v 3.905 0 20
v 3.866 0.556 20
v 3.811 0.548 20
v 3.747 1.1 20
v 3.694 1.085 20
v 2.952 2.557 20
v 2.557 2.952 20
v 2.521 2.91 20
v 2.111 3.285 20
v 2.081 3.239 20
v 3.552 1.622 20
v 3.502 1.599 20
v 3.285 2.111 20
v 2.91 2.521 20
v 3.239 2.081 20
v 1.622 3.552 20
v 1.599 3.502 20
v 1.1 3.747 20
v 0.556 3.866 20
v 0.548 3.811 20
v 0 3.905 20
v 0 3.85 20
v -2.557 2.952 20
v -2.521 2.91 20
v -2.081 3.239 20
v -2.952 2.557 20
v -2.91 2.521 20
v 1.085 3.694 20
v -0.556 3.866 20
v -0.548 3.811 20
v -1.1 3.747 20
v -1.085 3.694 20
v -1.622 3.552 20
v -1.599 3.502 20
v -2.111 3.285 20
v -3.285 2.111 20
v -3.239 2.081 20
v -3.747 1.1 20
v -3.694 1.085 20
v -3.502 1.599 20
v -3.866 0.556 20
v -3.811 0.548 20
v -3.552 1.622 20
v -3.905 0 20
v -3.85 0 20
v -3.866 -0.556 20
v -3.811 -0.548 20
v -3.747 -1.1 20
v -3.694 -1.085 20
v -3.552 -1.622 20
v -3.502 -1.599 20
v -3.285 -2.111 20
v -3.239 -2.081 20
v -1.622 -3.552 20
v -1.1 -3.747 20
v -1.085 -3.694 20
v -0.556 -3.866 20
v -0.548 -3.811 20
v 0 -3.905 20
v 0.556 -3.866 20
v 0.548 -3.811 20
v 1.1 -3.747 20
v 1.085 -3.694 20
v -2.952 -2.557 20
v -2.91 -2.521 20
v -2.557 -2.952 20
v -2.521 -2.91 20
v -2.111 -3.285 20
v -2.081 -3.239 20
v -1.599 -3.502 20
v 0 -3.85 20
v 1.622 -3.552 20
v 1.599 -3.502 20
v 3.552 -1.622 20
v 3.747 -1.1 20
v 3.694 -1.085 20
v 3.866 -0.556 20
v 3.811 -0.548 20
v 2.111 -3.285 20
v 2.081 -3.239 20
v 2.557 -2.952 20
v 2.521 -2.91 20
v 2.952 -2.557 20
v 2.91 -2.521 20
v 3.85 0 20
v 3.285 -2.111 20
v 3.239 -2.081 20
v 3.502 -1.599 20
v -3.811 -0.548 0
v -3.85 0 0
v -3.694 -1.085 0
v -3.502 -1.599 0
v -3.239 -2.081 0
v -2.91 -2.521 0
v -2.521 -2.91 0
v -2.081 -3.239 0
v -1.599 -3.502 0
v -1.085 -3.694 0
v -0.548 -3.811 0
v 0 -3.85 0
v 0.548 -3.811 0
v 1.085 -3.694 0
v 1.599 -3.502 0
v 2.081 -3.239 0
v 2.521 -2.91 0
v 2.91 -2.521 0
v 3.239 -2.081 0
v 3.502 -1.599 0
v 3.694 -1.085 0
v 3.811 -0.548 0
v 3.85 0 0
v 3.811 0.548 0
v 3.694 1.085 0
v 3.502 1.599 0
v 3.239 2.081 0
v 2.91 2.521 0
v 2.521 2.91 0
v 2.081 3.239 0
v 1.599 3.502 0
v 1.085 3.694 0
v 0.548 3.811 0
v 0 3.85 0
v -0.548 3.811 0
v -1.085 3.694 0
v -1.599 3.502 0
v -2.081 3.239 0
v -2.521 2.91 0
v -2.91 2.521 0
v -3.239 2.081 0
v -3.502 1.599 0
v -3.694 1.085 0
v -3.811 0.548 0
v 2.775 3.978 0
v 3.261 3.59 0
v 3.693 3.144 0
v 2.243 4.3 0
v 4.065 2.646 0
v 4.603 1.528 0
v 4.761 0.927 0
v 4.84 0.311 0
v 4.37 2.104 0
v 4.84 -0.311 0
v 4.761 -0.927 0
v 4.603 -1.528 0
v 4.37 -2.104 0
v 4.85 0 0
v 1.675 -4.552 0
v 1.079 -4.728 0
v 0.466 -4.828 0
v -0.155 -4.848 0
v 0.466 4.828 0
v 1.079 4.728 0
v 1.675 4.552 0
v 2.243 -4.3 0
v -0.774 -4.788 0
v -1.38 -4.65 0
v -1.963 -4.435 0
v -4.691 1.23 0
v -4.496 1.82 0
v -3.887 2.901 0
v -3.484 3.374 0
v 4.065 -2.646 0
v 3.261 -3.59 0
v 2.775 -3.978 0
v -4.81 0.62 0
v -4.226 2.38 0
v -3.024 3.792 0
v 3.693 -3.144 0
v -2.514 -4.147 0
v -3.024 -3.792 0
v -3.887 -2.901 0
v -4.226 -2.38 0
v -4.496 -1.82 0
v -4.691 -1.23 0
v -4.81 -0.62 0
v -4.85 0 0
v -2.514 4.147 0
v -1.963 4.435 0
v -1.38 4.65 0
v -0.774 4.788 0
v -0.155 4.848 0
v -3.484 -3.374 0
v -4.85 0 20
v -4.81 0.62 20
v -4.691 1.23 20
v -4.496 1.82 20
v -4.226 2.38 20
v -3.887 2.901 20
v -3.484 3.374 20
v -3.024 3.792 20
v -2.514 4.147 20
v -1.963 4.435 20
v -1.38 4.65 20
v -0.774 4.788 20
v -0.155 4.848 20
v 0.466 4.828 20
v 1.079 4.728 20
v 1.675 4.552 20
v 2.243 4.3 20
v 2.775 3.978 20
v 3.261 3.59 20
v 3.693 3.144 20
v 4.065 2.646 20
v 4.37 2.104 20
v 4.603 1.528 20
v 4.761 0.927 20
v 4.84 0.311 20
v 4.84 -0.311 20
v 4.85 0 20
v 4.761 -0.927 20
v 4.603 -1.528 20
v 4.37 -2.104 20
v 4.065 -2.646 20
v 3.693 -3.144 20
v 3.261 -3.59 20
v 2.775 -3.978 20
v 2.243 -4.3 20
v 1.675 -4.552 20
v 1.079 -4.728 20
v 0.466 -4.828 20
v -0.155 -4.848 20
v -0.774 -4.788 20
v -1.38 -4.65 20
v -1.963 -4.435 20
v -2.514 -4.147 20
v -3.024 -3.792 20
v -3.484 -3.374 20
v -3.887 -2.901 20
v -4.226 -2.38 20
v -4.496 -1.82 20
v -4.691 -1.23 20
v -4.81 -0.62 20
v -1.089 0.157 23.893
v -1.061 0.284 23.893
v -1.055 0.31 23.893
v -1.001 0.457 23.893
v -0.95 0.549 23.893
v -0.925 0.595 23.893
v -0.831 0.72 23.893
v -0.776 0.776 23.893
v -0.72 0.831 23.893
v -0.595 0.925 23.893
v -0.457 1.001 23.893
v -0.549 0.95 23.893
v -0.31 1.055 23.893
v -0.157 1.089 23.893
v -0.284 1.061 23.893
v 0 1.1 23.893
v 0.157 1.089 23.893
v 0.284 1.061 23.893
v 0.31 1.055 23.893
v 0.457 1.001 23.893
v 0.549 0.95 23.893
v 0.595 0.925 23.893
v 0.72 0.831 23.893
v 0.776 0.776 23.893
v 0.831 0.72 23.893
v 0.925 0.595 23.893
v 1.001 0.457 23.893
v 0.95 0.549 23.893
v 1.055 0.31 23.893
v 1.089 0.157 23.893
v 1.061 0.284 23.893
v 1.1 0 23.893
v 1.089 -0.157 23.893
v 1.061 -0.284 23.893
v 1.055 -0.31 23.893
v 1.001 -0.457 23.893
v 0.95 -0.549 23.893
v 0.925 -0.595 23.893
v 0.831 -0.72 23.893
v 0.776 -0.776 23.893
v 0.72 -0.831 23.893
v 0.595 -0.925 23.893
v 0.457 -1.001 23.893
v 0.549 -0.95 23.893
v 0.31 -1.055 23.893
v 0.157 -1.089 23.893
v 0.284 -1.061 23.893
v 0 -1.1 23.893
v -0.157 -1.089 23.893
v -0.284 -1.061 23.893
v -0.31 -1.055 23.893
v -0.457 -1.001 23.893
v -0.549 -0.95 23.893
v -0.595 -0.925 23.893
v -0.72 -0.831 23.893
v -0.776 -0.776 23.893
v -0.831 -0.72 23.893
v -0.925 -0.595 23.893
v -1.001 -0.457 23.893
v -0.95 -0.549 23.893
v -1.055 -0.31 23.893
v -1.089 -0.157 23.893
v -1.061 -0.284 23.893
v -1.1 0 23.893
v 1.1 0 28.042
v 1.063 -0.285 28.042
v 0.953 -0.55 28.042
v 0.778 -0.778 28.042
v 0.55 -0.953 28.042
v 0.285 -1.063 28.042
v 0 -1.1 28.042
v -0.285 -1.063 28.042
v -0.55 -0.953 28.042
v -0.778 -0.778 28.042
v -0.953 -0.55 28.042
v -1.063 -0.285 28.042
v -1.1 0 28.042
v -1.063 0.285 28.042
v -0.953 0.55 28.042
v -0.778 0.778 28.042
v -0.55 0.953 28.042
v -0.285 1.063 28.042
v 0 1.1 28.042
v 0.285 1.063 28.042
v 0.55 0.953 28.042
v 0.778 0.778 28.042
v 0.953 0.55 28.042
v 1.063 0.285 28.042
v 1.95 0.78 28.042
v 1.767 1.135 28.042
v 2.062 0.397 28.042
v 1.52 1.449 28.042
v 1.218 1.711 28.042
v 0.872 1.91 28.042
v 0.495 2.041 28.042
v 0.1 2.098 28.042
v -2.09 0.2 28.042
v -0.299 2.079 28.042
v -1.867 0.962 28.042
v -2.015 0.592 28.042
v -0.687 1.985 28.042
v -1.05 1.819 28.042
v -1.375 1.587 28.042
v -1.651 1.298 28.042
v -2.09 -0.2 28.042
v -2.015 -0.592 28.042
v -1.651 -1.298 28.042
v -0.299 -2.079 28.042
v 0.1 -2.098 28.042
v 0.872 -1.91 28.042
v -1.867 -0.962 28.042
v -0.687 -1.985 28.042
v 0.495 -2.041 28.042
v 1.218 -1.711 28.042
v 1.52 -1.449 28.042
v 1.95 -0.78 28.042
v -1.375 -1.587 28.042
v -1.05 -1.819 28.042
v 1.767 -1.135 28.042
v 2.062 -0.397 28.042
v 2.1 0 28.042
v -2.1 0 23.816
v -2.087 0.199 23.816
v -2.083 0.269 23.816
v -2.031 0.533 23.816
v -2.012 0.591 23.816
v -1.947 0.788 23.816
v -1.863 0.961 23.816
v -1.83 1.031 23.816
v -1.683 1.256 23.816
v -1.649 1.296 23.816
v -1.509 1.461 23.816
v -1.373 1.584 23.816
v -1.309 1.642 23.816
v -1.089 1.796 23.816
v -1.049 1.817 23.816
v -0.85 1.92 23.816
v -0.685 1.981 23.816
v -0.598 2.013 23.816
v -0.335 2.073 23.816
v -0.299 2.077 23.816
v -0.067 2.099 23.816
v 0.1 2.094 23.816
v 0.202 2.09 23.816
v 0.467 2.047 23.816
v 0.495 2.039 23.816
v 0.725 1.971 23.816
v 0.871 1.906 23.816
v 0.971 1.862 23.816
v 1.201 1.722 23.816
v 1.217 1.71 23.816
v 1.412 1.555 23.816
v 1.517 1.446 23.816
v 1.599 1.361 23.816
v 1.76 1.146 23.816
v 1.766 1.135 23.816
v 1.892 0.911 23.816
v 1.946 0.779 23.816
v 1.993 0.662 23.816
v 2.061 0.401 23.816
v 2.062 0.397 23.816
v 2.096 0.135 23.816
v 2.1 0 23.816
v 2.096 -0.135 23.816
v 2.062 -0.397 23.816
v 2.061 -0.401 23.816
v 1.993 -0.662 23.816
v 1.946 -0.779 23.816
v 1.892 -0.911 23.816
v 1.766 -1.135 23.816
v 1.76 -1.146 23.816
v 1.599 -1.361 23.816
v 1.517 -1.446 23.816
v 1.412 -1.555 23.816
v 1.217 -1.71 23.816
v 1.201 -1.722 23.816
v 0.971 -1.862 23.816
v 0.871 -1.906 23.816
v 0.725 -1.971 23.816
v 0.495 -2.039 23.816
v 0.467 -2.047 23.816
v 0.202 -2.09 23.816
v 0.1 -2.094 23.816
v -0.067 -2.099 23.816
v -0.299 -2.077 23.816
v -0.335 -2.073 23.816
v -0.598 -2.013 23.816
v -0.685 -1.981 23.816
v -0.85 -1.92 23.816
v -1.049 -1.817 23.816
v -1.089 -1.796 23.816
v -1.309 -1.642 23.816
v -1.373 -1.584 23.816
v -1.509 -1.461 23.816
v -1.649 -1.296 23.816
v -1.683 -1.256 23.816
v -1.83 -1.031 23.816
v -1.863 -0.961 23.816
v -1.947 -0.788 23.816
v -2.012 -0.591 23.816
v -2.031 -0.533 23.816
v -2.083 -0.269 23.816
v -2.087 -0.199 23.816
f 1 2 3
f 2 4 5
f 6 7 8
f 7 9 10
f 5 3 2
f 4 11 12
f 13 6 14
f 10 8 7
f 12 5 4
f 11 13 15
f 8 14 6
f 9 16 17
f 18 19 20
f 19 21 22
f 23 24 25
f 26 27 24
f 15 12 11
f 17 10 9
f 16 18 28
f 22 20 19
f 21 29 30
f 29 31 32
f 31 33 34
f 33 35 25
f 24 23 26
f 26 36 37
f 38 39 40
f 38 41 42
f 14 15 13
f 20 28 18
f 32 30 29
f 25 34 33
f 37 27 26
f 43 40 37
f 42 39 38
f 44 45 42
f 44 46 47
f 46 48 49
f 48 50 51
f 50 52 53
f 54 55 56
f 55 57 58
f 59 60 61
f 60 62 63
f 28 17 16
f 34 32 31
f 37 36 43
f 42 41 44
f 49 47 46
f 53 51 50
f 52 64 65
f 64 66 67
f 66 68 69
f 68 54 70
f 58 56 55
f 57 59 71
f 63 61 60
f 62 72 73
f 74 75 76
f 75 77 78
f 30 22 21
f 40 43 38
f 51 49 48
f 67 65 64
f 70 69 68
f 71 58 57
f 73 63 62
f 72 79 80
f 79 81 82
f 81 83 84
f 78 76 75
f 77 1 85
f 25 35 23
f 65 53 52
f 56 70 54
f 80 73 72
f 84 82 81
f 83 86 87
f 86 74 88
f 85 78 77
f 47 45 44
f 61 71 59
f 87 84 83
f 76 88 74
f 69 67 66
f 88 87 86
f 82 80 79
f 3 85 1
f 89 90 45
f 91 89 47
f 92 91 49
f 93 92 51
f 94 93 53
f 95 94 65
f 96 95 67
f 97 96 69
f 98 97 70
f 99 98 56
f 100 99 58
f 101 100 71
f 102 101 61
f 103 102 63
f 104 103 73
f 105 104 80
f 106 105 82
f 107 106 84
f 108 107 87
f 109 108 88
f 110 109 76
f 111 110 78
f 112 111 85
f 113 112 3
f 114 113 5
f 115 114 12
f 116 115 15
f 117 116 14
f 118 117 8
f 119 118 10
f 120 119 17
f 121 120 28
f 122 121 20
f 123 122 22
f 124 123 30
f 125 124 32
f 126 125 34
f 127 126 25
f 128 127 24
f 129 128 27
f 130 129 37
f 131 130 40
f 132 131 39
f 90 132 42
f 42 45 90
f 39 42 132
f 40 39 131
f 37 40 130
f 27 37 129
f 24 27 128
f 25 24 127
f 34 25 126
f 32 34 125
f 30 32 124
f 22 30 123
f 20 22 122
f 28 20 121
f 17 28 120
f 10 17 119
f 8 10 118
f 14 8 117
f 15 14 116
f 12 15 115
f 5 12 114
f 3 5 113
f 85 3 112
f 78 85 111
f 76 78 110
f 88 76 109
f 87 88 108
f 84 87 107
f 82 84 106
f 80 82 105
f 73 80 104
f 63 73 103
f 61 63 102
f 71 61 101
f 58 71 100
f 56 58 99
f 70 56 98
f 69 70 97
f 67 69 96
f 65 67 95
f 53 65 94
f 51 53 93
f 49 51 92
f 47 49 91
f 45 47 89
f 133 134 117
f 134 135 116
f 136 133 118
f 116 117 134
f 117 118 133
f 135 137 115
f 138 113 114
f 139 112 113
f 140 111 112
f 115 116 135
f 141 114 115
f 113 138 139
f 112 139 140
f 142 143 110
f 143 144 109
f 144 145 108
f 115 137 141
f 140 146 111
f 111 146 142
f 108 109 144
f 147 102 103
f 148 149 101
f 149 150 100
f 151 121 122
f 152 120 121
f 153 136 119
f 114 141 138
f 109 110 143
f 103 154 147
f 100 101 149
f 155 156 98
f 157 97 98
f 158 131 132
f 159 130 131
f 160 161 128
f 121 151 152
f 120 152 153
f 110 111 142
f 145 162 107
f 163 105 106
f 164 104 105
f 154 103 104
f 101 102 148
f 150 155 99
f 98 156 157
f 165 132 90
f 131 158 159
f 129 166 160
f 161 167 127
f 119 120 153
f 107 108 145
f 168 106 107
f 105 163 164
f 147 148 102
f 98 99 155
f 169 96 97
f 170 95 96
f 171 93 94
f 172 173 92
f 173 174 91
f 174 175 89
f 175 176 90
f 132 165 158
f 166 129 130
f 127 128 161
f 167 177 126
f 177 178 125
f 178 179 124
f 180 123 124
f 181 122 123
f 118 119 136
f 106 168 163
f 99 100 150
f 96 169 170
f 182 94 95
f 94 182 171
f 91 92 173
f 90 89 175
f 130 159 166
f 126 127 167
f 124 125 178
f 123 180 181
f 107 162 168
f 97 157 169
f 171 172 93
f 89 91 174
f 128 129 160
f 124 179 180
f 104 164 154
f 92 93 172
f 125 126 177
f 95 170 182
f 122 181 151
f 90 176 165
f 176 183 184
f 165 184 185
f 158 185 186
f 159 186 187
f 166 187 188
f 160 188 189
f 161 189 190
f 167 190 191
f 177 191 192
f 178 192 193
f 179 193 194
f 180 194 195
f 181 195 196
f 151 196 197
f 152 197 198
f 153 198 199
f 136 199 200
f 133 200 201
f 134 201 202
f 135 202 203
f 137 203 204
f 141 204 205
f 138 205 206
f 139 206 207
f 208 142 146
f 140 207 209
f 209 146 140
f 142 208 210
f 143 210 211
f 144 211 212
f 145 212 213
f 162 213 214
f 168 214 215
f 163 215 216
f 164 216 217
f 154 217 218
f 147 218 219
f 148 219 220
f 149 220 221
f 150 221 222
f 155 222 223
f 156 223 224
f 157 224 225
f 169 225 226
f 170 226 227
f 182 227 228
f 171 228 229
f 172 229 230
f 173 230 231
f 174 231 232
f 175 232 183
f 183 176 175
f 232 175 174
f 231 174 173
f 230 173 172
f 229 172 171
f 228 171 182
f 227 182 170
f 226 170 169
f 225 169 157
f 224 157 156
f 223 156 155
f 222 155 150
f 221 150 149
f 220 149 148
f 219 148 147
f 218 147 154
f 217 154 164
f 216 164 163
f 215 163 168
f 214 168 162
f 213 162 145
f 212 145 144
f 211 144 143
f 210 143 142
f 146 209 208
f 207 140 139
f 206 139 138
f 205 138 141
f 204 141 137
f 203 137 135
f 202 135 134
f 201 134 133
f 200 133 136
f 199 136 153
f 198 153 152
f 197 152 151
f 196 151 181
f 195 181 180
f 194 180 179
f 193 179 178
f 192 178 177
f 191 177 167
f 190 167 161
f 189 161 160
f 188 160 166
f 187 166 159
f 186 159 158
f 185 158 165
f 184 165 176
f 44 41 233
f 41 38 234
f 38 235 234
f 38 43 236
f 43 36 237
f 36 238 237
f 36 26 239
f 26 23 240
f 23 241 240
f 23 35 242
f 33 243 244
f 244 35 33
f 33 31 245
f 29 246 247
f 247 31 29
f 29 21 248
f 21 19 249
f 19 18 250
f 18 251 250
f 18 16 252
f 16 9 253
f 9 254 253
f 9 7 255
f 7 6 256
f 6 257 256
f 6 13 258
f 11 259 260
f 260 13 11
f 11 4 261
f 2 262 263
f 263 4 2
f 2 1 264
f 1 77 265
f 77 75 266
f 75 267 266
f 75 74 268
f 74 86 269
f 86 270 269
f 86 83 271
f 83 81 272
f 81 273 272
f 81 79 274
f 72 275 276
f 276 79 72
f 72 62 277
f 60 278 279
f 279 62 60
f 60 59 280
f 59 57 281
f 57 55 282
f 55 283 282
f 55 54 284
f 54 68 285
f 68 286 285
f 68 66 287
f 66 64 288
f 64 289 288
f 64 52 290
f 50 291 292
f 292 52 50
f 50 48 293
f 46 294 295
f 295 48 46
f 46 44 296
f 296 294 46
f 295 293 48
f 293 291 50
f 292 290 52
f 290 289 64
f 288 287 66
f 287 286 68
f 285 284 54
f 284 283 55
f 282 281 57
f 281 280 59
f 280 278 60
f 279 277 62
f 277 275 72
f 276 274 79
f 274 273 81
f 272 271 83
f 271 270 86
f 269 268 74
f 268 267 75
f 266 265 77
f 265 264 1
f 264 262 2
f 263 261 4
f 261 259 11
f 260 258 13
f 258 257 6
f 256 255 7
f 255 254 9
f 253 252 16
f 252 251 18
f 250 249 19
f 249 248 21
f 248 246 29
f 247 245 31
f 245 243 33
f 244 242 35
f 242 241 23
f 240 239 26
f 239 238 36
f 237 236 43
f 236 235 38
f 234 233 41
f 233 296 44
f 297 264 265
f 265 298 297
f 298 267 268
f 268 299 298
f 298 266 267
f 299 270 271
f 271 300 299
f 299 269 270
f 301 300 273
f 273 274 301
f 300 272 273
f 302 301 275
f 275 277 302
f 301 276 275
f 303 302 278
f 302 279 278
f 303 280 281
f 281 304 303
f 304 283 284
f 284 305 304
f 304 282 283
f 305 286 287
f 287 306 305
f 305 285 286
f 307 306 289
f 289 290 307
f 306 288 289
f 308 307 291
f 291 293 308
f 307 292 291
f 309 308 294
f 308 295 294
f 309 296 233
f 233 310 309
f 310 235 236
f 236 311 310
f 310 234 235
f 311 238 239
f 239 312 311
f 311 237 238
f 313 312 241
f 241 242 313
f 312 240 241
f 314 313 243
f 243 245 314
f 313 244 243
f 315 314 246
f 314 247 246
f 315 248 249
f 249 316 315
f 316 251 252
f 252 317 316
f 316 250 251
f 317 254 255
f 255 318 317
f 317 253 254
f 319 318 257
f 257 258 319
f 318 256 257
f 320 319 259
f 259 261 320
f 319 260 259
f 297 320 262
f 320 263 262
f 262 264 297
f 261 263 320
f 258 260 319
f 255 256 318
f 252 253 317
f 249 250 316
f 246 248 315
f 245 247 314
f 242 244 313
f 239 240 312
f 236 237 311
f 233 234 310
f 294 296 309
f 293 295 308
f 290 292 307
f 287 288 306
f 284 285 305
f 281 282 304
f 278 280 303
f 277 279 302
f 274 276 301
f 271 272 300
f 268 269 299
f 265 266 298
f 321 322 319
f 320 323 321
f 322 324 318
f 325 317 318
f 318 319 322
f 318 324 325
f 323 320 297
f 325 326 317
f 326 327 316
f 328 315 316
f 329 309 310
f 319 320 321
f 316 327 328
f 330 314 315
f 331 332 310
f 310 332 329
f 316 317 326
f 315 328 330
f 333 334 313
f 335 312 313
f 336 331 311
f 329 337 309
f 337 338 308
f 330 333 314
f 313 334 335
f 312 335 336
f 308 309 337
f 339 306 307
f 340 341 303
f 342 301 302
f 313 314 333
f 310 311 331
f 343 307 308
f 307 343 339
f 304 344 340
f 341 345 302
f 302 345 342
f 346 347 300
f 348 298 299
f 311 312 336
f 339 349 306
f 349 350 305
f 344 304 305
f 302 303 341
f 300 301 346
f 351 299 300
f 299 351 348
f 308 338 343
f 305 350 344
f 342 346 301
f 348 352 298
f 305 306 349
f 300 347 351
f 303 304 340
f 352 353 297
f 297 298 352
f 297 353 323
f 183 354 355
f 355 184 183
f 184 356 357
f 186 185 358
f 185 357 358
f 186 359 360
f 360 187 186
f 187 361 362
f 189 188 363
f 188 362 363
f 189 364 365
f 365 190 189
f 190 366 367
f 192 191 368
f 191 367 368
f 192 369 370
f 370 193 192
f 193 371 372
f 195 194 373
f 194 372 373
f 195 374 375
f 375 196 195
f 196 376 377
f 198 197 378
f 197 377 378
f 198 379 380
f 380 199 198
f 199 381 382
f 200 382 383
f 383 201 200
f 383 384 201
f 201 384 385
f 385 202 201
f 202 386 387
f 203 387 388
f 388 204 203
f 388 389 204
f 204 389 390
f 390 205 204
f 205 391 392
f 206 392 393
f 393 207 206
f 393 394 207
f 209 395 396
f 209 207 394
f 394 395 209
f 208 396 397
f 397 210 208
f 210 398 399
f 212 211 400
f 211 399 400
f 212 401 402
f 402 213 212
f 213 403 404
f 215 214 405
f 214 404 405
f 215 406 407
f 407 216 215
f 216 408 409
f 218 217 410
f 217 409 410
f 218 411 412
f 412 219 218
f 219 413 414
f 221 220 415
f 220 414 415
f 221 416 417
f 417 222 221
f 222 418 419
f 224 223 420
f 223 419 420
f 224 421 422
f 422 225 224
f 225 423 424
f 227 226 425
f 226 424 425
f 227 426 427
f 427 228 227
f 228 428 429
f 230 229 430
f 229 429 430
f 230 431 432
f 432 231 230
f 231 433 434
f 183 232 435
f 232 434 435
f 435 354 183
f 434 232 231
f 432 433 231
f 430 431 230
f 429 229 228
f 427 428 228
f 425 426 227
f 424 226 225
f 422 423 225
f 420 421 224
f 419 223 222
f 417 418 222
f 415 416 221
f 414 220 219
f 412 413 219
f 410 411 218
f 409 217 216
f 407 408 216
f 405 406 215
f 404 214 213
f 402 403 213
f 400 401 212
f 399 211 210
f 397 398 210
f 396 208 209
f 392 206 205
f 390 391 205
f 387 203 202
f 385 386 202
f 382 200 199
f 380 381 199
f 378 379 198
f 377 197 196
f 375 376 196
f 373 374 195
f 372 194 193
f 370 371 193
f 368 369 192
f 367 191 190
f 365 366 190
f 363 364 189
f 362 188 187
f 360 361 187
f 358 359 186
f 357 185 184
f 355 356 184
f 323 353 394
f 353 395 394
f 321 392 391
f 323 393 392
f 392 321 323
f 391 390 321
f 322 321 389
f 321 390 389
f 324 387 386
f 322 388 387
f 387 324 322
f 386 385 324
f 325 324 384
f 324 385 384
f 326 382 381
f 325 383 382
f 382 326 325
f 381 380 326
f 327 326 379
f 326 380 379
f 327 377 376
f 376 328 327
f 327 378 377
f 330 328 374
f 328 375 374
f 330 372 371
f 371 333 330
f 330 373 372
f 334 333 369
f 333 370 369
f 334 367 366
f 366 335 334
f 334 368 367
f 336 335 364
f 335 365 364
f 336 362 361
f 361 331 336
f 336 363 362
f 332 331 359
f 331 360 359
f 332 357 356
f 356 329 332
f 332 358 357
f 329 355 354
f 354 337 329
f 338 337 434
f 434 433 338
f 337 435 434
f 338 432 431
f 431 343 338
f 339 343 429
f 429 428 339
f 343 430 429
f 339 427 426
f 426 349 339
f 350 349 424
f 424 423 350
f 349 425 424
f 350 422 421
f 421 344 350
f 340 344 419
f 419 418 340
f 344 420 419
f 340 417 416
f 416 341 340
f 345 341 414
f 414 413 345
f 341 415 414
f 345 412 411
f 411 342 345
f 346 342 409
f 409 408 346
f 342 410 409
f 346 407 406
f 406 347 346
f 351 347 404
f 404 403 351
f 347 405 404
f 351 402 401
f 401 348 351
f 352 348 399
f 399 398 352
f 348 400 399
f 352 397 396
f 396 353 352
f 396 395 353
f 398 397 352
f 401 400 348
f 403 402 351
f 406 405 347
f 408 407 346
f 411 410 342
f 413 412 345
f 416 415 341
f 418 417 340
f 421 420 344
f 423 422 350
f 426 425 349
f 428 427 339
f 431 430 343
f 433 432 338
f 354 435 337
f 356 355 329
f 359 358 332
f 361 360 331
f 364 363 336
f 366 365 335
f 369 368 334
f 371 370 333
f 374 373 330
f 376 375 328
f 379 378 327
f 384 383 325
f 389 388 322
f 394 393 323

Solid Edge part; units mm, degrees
sketch "Sketch1" plane through (0, 0, 0) normal (0, 0, 1) x (1, 0, 0)
  circle A0 centre (0, 0) radius 3.85
  circle A1 centre (0, 0) radius 4.85
  dimension "D1" = 7.7
extrude "ProtrusiónExtruida_22" add sketch "Sketch1" along normal blind 20
sketch "Sketch2" plane through (0, 0, 0) normal (0, -1, 0) x (1, 0, 0)
  line L0 (1.1, 28.0416) -> (1.1, 23.893)
  line L1 (1.1, 23.893) -> (3.9054, 20)
  line L2 (4.85, 20) -> (3.9054, 20)
  line L3 (4.85, 20) -> (2.1, 23.8161)
  line L4 (2.1, 28.0416) -> (2.1, 23.8161)
  line L5 (1.1, 28.0416) -> (2.1, 28.0416)
  dimension "D1" = 1.1
  dimension "D2" = 1
revolve "RevolvedProtrusion1" add sketch "Sketch2" angle 360 about axis through (0, 0, 54) along (0, 0, -1)
